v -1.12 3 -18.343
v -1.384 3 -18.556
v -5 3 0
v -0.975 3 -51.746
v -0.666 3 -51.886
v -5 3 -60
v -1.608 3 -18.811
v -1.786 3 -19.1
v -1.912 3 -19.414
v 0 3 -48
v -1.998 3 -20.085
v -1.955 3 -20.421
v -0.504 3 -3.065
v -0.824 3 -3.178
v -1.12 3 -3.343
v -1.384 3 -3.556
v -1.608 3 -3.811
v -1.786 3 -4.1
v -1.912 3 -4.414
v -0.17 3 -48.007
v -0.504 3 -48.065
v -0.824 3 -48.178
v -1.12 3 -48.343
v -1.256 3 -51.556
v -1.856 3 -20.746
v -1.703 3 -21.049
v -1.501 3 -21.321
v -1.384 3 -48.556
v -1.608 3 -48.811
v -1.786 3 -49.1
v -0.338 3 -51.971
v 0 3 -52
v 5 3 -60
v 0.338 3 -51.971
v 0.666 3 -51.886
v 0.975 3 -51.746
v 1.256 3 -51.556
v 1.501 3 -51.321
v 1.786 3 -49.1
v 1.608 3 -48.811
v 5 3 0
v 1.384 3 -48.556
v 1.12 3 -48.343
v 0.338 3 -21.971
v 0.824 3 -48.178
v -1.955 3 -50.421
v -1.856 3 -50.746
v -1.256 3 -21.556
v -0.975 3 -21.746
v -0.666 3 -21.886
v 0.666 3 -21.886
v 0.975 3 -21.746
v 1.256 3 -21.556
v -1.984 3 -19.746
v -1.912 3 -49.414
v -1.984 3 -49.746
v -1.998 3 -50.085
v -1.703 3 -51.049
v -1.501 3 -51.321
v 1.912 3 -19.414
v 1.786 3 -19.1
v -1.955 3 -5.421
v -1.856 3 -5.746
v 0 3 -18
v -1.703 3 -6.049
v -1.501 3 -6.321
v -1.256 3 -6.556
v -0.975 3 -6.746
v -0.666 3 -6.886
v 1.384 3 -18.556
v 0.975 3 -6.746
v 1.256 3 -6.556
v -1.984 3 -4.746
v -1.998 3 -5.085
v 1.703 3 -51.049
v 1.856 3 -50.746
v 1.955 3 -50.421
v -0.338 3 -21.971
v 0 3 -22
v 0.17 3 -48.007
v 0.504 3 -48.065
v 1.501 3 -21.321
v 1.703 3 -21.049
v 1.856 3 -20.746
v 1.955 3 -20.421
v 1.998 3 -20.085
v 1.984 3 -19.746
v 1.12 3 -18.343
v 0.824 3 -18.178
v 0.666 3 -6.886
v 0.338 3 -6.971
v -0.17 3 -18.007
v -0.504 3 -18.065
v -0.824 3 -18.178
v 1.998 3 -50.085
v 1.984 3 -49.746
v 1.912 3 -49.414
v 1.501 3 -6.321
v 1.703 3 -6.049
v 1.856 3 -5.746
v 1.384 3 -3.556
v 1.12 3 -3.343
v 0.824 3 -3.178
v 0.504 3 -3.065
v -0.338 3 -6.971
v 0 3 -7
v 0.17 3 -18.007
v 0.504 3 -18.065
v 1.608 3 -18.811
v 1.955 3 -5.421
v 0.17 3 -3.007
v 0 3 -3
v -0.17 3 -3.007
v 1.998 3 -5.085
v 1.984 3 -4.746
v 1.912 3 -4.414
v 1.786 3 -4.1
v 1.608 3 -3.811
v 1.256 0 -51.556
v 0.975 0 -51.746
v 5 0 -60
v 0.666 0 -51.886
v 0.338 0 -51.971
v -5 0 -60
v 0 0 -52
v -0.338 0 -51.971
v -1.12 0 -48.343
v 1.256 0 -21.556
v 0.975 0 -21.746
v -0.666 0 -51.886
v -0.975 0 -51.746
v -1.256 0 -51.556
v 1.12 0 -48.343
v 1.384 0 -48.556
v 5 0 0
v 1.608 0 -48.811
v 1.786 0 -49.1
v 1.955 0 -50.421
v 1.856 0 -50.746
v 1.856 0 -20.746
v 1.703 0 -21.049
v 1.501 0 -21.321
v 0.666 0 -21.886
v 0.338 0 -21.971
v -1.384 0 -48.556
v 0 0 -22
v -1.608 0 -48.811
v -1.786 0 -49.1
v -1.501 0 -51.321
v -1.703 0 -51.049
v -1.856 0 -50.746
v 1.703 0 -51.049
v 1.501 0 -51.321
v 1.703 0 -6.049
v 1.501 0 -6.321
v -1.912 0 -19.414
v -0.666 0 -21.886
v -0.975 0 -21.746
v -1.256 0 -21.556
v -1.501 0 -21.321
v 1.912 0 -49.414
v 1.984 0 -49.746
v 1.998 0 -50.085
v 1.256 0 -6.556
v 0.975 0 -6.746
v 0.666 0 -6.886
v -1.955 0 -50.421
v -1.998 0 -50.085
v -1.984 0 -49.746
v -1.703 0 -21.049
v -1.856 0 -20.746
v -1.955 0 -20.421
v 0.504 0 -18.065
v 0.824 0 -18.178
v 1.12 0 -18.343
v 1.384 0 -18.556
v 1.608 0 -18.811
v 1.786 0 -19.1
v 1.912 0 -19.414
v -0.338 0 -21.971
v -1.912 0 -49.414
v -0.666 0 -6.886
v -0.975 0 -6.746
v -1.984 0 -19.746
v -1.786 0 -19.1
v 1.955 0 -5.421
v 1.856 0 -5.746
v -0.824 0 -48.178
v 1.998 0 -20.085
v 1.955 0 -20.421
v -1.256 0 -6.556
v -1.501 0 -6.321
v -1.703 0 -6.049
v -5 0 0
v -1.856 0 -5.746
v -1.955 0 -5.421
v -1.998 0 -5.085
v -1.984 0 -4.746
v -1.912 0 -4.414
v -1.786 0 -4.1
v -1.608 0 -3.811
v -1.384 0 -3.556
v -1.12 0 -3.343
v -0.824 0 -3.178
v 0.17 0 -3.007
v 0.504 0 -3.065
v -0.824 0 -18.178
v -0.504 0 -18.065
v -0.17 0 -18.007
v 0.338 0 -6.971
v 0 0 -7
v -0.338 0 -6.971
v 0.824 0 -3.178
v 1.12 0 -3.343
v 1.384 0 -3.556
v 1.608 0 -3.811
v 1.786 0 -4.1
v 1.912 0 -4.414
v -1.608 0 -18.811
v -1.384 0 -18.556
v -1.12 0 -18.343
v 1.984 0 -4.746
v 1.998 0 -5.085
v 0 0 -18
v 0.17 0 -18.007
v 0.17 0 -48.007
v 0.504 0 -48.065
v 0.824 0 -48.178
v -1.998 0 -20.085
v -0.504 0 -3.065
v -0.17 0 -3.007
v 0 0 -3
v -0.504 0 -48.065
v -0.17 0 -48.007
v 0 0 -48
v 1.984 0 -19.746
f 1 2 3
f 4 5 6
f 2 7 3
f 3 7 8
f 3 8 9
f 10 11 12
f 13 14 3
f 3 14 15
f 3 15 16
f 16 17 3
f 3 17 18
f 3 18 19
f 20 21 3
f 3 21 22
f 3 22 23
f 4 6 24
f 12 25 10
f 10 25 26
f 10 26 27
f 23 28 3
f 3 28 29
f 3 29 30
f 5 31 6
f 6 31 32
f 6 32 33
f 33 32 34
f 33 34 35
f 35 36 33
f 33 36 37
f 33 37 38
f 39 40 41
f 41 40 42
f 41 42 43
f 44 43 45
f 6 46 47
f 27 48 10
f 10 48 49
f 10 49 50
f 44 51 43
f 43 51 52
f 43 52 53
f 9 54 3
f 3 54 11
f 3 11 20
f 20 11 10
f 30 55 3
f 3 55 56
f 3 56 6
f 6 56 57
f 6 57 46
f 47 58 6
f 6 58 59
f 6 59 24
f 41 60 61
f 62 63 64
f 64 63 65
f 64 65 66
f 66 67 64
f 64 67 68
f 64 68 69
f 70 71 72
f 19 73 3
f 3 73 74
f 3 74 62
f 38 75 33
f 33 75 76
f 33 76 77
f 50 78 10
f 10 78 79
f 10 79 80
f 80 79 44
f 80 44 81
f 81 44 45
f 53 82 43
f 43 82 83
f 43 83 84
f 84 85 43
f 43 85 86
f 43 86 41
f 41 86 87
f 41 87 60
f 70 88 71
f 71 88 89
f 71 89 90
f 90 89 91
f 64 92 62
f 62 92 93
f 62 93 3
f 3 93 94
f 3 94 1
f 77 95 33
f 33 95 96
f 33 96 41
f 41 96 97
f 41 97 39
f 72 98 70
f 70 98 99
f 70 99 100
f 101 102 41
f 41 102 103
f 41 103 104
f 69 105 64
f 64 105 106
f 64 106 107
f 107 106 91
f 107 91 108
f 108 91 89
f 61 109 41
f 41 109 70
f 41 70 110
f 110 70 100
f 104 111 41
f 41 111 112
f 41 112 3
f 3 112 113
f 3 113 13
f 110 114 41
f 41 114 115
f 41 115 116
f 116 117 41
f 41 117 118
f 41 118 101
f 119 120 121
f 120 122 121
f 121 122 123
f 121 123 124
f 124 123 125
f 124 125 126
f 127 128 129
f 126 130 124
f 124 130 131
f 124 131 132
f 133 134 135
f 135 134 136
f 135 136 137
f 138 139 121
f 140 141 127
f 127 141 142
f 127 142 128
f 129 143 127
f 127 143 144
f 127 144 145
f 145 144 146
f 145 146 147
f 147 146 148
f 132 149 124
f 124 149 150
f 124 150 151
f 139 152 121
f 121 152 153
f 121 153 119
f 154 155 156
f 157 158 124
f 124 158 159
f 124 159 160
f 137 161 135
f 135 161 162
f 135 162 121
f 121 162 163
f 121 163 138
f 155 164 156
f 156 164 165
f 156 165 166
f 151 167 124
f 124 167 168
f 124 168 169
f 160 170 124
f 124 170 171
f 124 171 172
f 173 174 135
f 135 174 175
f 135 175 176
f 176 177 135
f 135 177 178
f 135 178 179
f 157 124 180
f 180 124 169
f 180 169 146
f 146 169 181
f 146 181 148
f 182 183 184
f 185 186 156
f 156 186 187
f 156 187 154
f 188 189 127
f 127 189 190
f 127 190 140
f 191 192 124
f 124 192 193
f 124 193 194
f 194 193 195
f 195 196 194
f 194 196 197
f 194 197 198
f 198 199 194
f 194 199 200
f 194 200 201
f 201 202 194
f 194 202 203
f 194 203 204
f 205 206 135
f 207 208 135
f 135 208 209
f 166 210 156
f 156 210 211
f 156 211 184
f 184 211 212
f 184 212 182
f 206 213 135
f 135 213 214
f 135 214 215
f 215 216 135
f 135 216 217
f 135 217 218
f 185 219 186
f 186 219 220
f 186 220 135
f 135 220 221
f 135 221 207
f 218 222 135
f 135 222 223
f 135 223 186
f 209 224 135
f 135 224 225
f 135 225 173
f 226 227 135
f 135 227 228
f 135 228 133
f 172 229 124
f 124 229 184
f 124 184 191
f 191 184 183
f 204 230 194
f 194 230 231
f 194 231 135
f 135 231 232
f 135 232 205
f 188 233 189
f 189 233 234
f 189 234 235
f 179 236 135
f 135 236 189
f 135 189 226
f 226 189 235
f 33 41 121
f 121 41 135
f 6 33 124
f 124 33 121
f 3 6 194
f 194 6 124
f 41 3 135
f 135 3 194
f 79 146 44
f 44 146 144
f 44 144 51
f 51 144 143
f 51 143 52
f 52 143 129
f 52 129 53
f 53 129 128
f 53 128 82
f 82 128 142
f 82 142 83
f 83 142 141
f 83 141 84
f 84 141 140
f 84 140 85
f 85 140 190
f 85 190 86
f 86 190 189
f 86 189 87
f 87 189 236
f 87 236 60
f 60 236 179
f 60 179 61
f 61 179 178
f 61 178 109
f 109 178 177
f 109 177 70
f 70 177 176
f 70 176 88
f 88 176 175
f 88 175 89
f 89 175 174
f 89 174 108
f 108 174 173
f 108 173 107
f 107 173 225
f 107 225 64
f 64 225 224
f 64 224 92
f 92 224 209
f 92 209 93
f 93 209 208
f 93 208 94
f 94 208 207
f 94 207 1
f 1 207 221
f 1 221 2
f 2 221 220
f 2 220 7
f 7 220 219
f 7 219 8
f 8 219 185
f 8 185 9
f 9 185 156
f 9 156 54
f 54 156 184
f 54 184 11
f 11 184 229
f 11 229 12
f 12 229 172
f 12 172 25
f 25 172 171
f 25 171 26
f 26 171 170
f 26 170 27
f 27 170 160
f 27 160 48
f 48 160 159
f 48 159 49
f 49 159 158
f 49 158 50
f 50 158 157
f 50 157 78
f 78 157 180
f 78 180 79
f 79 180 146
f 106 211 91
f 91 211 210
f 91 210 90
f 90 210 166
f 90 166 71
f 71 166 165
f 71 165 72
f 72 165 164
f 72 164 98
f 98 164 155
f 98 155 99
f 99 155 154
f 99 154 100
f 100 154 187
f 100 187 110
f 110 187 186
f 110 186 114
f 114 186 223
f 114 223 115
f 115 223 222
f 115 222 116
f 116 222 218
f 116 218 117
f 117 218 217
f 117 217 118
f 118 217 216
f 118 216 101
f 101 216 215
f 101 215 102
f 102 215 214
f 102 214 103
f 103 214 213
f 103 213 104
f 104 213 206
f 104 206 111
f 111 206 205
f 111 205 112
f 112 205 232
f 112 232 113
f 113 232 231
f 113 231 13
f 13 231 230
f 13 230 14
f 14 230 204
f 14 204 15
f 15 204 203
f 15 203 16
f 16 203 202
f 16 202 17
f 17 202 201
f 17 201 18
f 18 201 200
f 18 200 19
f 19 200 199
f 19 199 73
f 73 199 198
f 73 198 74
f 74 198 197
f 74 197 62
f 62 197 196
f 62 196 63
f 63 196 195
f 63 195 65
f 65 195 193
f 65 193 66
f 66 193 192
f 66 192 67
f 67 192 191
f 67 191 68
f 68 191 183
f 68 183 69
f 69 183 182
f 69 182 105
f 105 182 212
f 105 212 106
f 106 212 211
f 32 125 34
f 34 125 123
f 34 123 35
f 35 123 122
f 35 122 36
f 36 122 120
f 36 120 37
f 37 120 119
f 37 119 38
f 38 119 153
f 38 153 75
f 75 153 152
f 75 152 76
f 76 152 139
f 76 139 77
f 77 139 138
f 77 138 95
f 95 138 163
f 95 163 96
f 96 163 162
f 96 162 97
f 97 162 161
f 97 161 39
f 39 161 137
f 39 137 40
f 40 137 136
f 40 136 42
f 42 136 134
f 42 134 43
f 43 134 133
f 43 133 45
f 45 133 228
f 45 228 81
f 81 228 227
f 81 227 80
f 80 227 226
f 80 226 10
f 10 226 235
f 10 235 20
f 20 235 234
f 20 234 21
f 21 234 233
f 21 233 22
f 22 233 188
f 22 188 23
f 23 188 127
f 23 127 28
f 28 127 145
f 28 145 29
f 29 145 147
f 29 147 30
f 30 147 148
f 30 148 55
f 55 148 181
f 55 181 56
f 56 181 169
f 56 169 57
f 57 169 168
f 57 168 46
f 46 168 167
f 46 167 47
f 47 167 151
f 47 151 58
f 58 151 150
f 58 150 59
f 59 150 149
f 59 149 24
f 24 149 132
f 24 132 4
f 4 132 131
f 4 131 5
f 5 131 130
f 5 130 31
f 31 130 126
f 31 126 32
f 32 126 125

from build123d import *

# Parameters (mm, degrees)
SKETCH1_R           = 2
BOSS_EXTRUDE1_DEPTH = 3


with BuildPart() as part:
    # Sketch1 → Boss-Extrude1 (new body)
    with BuildSketch(Plane(origin=(0, 0, 0), x_dir=(1, 0, 0), z_dir=(0, 1, 0))):
        Polygon((0, 0), (-5, 0), (-5, 60), (5, 60), (5, 0), align=None)
        with Locations(Location((0, 20, 0), (0, 0, 270))):
            Circle(SKETCH1_R, mode=Mode.SUBTRACT)
        with Locations(Location((0, 5, 0), (0, 0, 270))):
            Circle(SKETCH1_R, mode=Mode.SUBTRACT)
        with Locations(Location((0, 50, 0), (0, 0, 270))):
            Circle(SKETCH1_R, mode=Mode.SUBTRACT)
    extrude(amount=BOSS_EXTRUDE1_DEPTH)


solid = part.part
